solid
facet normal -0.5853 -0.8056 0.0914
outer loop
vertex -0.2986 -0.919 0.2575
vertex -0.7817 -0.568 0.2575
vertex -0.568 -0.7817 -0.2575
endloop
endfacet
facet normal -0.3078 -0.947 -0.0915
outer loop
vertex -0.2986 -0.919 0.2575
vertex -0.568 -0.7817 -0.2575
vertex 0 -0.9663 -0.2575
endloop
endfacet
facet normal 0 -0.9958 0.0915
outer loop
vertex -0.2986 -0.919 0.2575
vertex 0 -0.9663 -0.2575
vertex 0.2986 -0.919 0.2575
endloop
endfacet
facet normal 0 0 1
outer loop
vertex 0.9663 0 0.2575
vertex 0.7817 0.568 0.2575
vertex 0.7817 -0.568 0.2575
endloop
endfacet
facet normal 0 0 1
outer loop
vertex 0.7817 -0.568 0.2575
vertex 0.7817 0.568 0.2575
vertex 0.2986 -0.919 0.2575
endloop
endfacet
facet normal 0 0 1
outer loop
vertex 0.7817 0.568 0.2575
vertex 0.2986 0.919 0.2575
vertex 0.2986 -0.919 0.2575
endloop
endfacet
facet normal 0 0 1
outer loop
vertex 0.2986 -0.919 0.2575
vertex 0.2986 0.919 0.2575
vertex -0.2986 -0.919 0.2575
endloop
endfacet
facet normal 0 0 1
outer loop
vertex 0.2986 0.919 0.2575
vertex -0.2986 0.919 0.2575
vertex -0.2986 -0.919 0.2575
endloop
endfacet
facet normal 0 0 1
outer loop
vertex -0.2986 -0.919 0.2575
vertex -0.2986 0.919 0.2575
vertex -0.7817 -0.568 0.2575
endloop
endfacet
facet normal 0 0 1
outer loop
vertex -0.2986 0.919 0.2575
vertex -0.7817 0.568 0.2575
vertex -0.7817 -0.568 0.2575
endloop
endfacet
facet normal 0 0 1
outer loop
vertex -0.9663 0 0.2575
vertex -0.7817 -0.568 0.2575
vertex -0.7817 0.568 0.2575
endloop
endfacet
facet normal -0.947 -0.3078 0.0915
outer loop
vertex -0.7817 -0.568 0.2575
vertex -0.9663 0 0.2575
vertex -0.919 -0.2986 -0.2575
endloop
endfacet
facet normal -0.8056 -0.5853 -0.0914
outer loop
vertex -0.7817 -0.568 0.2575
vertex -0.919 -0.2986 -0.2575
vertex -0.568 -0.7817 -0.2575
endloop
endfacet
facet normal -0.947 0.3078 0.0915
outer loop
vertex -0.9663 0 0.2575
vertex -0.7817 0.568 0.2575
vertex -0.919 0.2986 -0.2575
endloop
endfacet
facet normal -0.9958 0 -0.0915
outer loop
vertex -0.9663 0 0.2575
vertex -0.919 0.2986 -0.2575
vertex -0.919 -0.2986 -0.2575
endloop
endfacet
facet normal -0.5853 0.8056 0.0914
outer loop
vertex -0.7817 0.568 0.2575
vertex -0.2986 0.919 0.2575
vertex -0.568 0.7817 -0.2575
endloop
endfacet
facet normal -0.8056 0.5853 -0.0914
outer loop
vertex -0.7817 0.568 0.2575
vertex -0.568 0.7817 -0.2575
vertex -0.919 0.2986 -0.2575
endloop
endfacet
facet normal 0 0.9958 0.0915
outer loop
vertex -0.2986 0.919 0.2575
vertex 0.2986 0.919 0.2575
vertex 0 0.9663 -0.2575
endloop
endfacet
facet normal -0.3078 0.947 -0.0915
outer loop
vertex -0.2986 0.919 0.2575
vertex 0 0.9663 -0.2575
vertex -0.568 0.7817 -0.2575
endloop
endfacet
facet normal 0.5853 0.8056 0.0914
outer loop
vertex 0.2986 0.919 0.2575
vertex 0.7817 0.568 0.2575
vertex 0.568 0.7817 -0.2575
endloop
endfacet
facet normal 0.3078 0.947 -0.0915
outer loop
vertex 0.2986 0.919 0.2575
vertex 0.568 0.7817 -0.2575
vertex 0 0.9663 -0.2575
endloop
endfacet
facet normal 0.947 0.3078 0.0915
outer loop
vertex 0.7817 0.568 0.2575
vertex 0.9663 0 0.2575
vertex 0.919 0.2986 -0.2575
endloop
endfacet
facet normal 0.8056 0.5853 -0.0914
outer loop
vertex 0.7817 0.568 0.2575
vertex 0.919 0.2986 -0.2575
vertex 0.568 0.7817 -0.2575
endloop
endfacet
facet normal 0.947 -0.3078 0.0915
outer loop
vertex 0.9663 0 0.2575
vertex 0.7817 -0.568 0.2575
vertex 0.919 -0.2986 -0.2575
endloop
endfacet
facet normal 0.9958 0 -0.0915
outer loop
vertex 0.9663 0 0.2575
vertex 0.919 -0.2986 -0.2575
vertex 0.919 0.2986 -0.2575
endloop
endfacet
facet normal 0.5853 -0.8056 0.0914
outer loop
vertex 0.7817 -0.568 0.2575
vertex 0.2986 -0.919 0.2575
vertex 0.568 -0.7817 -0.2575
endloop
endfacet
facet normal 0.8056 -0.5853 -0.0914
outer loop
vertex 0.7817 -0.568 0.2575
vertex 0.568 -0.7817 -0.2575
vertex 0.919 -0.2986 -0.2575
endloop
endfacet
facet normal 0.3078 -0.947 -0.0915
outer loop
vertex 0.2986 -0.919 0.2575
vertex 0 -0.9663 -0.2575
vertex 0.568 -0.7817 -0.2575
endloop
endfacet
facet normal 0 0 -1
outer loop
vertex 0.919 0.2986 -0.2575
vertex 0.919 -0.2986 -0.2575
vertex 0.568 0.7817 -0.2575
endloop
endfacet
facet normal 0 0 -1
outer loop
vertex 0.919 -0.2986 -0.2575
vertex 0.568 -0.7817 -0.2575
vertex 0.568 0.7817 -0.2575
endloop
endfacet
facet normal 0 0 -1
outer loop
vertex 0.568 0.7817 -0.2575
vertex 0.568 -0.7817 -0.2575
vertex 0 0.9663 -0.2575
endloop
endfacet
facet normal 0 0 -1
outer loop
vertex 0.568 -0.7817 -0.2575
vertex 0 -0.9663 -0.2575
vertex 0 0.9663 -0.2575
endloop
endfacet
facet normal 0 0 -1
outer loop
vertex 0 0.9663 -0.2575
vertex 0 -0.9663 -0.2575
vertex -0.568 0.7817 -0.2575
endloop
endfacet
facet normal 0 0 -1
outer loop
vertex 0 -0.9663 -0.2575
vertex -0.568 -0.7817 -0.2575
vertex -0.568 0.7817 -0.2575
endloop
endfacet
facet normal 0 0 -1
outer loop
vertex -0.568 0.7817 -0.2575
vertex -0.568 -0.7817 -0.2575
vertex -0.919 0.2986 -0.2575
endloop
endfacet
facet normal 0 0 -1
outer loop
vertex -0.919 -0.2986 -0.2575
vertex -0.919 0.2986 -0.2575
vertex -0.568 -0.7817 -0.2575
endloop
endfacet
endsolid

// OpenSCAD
polyhedron( points = [[-0.298595750033422, -0.918983224106594, 0.257508080160383], [-0.781733822543418, -0.567962867476518, 0.257508080160383], [-0.966276144860158, 1.07454697950135e-10, 0.257508080160383], [-0.78173382239042, 0.567962867641709, 0.257508080160383], [-0.298595749950903, 0.918983224088013, 0.257508080160383], [0.298595750055807, 0.918983224034391, 0.257508080160383], [0.781733822432282, 0.567962867501321, 0.257508080160383], [0.966276144800023, -6.60772108108316e-11, 0.257508080160383], [0.781733822381282, -0.567962867616907, 0.257508080160383], [0.298595749973287, -0.918983224106594, 0.257508080160383], [-1.45876063051249e-11, -0.966276144795691, -0.257508080175607], [-0.567962867585792, -0.78173382234214, -0.257508080175607], [-0.918983223845401, -0.298595749785664, -0.257508080241157], [-0.918983224335438, 0.298595750205738, -0.257508080162766], [-0.567962867312377, 0.781733822207118, -0.257508080200244], [7.21771546470021e-11, 0.966276145087172, -0.257508080128823], [0.567962867417474, 0.781733822086641, -0.257508080172084], [0.918983224337835, 0.298595750011042, -0.25750808010546], [0.918983223721056, -0.298595749979817, -0.257508080152701], [0.567962867680693, -0.781733822694601, -0.25750808008938]], faces = [[0, 1, 11], [0, 11, 10], [0, 10, 9], [0, 9, 8, 7, 6, 5, 4, 3, 2, 1], [1, 2, 12], [1, 12, 11], [2, 3, 13], [2, 13, 12], [3, 4, 14], [3, 14, 13], [4, 5, 15], [4, 15, 14], [5, 6, 16], [5, 16, 15], [6, 7, 17], [6, 17, 16], [7, 8, 18], [7, 18, 17], [8, 9, 19], [8, 19, 18], [9, 10, 19], [10, 11, 12, 13, 14, 15, 16, 17, 18, 19]]);
